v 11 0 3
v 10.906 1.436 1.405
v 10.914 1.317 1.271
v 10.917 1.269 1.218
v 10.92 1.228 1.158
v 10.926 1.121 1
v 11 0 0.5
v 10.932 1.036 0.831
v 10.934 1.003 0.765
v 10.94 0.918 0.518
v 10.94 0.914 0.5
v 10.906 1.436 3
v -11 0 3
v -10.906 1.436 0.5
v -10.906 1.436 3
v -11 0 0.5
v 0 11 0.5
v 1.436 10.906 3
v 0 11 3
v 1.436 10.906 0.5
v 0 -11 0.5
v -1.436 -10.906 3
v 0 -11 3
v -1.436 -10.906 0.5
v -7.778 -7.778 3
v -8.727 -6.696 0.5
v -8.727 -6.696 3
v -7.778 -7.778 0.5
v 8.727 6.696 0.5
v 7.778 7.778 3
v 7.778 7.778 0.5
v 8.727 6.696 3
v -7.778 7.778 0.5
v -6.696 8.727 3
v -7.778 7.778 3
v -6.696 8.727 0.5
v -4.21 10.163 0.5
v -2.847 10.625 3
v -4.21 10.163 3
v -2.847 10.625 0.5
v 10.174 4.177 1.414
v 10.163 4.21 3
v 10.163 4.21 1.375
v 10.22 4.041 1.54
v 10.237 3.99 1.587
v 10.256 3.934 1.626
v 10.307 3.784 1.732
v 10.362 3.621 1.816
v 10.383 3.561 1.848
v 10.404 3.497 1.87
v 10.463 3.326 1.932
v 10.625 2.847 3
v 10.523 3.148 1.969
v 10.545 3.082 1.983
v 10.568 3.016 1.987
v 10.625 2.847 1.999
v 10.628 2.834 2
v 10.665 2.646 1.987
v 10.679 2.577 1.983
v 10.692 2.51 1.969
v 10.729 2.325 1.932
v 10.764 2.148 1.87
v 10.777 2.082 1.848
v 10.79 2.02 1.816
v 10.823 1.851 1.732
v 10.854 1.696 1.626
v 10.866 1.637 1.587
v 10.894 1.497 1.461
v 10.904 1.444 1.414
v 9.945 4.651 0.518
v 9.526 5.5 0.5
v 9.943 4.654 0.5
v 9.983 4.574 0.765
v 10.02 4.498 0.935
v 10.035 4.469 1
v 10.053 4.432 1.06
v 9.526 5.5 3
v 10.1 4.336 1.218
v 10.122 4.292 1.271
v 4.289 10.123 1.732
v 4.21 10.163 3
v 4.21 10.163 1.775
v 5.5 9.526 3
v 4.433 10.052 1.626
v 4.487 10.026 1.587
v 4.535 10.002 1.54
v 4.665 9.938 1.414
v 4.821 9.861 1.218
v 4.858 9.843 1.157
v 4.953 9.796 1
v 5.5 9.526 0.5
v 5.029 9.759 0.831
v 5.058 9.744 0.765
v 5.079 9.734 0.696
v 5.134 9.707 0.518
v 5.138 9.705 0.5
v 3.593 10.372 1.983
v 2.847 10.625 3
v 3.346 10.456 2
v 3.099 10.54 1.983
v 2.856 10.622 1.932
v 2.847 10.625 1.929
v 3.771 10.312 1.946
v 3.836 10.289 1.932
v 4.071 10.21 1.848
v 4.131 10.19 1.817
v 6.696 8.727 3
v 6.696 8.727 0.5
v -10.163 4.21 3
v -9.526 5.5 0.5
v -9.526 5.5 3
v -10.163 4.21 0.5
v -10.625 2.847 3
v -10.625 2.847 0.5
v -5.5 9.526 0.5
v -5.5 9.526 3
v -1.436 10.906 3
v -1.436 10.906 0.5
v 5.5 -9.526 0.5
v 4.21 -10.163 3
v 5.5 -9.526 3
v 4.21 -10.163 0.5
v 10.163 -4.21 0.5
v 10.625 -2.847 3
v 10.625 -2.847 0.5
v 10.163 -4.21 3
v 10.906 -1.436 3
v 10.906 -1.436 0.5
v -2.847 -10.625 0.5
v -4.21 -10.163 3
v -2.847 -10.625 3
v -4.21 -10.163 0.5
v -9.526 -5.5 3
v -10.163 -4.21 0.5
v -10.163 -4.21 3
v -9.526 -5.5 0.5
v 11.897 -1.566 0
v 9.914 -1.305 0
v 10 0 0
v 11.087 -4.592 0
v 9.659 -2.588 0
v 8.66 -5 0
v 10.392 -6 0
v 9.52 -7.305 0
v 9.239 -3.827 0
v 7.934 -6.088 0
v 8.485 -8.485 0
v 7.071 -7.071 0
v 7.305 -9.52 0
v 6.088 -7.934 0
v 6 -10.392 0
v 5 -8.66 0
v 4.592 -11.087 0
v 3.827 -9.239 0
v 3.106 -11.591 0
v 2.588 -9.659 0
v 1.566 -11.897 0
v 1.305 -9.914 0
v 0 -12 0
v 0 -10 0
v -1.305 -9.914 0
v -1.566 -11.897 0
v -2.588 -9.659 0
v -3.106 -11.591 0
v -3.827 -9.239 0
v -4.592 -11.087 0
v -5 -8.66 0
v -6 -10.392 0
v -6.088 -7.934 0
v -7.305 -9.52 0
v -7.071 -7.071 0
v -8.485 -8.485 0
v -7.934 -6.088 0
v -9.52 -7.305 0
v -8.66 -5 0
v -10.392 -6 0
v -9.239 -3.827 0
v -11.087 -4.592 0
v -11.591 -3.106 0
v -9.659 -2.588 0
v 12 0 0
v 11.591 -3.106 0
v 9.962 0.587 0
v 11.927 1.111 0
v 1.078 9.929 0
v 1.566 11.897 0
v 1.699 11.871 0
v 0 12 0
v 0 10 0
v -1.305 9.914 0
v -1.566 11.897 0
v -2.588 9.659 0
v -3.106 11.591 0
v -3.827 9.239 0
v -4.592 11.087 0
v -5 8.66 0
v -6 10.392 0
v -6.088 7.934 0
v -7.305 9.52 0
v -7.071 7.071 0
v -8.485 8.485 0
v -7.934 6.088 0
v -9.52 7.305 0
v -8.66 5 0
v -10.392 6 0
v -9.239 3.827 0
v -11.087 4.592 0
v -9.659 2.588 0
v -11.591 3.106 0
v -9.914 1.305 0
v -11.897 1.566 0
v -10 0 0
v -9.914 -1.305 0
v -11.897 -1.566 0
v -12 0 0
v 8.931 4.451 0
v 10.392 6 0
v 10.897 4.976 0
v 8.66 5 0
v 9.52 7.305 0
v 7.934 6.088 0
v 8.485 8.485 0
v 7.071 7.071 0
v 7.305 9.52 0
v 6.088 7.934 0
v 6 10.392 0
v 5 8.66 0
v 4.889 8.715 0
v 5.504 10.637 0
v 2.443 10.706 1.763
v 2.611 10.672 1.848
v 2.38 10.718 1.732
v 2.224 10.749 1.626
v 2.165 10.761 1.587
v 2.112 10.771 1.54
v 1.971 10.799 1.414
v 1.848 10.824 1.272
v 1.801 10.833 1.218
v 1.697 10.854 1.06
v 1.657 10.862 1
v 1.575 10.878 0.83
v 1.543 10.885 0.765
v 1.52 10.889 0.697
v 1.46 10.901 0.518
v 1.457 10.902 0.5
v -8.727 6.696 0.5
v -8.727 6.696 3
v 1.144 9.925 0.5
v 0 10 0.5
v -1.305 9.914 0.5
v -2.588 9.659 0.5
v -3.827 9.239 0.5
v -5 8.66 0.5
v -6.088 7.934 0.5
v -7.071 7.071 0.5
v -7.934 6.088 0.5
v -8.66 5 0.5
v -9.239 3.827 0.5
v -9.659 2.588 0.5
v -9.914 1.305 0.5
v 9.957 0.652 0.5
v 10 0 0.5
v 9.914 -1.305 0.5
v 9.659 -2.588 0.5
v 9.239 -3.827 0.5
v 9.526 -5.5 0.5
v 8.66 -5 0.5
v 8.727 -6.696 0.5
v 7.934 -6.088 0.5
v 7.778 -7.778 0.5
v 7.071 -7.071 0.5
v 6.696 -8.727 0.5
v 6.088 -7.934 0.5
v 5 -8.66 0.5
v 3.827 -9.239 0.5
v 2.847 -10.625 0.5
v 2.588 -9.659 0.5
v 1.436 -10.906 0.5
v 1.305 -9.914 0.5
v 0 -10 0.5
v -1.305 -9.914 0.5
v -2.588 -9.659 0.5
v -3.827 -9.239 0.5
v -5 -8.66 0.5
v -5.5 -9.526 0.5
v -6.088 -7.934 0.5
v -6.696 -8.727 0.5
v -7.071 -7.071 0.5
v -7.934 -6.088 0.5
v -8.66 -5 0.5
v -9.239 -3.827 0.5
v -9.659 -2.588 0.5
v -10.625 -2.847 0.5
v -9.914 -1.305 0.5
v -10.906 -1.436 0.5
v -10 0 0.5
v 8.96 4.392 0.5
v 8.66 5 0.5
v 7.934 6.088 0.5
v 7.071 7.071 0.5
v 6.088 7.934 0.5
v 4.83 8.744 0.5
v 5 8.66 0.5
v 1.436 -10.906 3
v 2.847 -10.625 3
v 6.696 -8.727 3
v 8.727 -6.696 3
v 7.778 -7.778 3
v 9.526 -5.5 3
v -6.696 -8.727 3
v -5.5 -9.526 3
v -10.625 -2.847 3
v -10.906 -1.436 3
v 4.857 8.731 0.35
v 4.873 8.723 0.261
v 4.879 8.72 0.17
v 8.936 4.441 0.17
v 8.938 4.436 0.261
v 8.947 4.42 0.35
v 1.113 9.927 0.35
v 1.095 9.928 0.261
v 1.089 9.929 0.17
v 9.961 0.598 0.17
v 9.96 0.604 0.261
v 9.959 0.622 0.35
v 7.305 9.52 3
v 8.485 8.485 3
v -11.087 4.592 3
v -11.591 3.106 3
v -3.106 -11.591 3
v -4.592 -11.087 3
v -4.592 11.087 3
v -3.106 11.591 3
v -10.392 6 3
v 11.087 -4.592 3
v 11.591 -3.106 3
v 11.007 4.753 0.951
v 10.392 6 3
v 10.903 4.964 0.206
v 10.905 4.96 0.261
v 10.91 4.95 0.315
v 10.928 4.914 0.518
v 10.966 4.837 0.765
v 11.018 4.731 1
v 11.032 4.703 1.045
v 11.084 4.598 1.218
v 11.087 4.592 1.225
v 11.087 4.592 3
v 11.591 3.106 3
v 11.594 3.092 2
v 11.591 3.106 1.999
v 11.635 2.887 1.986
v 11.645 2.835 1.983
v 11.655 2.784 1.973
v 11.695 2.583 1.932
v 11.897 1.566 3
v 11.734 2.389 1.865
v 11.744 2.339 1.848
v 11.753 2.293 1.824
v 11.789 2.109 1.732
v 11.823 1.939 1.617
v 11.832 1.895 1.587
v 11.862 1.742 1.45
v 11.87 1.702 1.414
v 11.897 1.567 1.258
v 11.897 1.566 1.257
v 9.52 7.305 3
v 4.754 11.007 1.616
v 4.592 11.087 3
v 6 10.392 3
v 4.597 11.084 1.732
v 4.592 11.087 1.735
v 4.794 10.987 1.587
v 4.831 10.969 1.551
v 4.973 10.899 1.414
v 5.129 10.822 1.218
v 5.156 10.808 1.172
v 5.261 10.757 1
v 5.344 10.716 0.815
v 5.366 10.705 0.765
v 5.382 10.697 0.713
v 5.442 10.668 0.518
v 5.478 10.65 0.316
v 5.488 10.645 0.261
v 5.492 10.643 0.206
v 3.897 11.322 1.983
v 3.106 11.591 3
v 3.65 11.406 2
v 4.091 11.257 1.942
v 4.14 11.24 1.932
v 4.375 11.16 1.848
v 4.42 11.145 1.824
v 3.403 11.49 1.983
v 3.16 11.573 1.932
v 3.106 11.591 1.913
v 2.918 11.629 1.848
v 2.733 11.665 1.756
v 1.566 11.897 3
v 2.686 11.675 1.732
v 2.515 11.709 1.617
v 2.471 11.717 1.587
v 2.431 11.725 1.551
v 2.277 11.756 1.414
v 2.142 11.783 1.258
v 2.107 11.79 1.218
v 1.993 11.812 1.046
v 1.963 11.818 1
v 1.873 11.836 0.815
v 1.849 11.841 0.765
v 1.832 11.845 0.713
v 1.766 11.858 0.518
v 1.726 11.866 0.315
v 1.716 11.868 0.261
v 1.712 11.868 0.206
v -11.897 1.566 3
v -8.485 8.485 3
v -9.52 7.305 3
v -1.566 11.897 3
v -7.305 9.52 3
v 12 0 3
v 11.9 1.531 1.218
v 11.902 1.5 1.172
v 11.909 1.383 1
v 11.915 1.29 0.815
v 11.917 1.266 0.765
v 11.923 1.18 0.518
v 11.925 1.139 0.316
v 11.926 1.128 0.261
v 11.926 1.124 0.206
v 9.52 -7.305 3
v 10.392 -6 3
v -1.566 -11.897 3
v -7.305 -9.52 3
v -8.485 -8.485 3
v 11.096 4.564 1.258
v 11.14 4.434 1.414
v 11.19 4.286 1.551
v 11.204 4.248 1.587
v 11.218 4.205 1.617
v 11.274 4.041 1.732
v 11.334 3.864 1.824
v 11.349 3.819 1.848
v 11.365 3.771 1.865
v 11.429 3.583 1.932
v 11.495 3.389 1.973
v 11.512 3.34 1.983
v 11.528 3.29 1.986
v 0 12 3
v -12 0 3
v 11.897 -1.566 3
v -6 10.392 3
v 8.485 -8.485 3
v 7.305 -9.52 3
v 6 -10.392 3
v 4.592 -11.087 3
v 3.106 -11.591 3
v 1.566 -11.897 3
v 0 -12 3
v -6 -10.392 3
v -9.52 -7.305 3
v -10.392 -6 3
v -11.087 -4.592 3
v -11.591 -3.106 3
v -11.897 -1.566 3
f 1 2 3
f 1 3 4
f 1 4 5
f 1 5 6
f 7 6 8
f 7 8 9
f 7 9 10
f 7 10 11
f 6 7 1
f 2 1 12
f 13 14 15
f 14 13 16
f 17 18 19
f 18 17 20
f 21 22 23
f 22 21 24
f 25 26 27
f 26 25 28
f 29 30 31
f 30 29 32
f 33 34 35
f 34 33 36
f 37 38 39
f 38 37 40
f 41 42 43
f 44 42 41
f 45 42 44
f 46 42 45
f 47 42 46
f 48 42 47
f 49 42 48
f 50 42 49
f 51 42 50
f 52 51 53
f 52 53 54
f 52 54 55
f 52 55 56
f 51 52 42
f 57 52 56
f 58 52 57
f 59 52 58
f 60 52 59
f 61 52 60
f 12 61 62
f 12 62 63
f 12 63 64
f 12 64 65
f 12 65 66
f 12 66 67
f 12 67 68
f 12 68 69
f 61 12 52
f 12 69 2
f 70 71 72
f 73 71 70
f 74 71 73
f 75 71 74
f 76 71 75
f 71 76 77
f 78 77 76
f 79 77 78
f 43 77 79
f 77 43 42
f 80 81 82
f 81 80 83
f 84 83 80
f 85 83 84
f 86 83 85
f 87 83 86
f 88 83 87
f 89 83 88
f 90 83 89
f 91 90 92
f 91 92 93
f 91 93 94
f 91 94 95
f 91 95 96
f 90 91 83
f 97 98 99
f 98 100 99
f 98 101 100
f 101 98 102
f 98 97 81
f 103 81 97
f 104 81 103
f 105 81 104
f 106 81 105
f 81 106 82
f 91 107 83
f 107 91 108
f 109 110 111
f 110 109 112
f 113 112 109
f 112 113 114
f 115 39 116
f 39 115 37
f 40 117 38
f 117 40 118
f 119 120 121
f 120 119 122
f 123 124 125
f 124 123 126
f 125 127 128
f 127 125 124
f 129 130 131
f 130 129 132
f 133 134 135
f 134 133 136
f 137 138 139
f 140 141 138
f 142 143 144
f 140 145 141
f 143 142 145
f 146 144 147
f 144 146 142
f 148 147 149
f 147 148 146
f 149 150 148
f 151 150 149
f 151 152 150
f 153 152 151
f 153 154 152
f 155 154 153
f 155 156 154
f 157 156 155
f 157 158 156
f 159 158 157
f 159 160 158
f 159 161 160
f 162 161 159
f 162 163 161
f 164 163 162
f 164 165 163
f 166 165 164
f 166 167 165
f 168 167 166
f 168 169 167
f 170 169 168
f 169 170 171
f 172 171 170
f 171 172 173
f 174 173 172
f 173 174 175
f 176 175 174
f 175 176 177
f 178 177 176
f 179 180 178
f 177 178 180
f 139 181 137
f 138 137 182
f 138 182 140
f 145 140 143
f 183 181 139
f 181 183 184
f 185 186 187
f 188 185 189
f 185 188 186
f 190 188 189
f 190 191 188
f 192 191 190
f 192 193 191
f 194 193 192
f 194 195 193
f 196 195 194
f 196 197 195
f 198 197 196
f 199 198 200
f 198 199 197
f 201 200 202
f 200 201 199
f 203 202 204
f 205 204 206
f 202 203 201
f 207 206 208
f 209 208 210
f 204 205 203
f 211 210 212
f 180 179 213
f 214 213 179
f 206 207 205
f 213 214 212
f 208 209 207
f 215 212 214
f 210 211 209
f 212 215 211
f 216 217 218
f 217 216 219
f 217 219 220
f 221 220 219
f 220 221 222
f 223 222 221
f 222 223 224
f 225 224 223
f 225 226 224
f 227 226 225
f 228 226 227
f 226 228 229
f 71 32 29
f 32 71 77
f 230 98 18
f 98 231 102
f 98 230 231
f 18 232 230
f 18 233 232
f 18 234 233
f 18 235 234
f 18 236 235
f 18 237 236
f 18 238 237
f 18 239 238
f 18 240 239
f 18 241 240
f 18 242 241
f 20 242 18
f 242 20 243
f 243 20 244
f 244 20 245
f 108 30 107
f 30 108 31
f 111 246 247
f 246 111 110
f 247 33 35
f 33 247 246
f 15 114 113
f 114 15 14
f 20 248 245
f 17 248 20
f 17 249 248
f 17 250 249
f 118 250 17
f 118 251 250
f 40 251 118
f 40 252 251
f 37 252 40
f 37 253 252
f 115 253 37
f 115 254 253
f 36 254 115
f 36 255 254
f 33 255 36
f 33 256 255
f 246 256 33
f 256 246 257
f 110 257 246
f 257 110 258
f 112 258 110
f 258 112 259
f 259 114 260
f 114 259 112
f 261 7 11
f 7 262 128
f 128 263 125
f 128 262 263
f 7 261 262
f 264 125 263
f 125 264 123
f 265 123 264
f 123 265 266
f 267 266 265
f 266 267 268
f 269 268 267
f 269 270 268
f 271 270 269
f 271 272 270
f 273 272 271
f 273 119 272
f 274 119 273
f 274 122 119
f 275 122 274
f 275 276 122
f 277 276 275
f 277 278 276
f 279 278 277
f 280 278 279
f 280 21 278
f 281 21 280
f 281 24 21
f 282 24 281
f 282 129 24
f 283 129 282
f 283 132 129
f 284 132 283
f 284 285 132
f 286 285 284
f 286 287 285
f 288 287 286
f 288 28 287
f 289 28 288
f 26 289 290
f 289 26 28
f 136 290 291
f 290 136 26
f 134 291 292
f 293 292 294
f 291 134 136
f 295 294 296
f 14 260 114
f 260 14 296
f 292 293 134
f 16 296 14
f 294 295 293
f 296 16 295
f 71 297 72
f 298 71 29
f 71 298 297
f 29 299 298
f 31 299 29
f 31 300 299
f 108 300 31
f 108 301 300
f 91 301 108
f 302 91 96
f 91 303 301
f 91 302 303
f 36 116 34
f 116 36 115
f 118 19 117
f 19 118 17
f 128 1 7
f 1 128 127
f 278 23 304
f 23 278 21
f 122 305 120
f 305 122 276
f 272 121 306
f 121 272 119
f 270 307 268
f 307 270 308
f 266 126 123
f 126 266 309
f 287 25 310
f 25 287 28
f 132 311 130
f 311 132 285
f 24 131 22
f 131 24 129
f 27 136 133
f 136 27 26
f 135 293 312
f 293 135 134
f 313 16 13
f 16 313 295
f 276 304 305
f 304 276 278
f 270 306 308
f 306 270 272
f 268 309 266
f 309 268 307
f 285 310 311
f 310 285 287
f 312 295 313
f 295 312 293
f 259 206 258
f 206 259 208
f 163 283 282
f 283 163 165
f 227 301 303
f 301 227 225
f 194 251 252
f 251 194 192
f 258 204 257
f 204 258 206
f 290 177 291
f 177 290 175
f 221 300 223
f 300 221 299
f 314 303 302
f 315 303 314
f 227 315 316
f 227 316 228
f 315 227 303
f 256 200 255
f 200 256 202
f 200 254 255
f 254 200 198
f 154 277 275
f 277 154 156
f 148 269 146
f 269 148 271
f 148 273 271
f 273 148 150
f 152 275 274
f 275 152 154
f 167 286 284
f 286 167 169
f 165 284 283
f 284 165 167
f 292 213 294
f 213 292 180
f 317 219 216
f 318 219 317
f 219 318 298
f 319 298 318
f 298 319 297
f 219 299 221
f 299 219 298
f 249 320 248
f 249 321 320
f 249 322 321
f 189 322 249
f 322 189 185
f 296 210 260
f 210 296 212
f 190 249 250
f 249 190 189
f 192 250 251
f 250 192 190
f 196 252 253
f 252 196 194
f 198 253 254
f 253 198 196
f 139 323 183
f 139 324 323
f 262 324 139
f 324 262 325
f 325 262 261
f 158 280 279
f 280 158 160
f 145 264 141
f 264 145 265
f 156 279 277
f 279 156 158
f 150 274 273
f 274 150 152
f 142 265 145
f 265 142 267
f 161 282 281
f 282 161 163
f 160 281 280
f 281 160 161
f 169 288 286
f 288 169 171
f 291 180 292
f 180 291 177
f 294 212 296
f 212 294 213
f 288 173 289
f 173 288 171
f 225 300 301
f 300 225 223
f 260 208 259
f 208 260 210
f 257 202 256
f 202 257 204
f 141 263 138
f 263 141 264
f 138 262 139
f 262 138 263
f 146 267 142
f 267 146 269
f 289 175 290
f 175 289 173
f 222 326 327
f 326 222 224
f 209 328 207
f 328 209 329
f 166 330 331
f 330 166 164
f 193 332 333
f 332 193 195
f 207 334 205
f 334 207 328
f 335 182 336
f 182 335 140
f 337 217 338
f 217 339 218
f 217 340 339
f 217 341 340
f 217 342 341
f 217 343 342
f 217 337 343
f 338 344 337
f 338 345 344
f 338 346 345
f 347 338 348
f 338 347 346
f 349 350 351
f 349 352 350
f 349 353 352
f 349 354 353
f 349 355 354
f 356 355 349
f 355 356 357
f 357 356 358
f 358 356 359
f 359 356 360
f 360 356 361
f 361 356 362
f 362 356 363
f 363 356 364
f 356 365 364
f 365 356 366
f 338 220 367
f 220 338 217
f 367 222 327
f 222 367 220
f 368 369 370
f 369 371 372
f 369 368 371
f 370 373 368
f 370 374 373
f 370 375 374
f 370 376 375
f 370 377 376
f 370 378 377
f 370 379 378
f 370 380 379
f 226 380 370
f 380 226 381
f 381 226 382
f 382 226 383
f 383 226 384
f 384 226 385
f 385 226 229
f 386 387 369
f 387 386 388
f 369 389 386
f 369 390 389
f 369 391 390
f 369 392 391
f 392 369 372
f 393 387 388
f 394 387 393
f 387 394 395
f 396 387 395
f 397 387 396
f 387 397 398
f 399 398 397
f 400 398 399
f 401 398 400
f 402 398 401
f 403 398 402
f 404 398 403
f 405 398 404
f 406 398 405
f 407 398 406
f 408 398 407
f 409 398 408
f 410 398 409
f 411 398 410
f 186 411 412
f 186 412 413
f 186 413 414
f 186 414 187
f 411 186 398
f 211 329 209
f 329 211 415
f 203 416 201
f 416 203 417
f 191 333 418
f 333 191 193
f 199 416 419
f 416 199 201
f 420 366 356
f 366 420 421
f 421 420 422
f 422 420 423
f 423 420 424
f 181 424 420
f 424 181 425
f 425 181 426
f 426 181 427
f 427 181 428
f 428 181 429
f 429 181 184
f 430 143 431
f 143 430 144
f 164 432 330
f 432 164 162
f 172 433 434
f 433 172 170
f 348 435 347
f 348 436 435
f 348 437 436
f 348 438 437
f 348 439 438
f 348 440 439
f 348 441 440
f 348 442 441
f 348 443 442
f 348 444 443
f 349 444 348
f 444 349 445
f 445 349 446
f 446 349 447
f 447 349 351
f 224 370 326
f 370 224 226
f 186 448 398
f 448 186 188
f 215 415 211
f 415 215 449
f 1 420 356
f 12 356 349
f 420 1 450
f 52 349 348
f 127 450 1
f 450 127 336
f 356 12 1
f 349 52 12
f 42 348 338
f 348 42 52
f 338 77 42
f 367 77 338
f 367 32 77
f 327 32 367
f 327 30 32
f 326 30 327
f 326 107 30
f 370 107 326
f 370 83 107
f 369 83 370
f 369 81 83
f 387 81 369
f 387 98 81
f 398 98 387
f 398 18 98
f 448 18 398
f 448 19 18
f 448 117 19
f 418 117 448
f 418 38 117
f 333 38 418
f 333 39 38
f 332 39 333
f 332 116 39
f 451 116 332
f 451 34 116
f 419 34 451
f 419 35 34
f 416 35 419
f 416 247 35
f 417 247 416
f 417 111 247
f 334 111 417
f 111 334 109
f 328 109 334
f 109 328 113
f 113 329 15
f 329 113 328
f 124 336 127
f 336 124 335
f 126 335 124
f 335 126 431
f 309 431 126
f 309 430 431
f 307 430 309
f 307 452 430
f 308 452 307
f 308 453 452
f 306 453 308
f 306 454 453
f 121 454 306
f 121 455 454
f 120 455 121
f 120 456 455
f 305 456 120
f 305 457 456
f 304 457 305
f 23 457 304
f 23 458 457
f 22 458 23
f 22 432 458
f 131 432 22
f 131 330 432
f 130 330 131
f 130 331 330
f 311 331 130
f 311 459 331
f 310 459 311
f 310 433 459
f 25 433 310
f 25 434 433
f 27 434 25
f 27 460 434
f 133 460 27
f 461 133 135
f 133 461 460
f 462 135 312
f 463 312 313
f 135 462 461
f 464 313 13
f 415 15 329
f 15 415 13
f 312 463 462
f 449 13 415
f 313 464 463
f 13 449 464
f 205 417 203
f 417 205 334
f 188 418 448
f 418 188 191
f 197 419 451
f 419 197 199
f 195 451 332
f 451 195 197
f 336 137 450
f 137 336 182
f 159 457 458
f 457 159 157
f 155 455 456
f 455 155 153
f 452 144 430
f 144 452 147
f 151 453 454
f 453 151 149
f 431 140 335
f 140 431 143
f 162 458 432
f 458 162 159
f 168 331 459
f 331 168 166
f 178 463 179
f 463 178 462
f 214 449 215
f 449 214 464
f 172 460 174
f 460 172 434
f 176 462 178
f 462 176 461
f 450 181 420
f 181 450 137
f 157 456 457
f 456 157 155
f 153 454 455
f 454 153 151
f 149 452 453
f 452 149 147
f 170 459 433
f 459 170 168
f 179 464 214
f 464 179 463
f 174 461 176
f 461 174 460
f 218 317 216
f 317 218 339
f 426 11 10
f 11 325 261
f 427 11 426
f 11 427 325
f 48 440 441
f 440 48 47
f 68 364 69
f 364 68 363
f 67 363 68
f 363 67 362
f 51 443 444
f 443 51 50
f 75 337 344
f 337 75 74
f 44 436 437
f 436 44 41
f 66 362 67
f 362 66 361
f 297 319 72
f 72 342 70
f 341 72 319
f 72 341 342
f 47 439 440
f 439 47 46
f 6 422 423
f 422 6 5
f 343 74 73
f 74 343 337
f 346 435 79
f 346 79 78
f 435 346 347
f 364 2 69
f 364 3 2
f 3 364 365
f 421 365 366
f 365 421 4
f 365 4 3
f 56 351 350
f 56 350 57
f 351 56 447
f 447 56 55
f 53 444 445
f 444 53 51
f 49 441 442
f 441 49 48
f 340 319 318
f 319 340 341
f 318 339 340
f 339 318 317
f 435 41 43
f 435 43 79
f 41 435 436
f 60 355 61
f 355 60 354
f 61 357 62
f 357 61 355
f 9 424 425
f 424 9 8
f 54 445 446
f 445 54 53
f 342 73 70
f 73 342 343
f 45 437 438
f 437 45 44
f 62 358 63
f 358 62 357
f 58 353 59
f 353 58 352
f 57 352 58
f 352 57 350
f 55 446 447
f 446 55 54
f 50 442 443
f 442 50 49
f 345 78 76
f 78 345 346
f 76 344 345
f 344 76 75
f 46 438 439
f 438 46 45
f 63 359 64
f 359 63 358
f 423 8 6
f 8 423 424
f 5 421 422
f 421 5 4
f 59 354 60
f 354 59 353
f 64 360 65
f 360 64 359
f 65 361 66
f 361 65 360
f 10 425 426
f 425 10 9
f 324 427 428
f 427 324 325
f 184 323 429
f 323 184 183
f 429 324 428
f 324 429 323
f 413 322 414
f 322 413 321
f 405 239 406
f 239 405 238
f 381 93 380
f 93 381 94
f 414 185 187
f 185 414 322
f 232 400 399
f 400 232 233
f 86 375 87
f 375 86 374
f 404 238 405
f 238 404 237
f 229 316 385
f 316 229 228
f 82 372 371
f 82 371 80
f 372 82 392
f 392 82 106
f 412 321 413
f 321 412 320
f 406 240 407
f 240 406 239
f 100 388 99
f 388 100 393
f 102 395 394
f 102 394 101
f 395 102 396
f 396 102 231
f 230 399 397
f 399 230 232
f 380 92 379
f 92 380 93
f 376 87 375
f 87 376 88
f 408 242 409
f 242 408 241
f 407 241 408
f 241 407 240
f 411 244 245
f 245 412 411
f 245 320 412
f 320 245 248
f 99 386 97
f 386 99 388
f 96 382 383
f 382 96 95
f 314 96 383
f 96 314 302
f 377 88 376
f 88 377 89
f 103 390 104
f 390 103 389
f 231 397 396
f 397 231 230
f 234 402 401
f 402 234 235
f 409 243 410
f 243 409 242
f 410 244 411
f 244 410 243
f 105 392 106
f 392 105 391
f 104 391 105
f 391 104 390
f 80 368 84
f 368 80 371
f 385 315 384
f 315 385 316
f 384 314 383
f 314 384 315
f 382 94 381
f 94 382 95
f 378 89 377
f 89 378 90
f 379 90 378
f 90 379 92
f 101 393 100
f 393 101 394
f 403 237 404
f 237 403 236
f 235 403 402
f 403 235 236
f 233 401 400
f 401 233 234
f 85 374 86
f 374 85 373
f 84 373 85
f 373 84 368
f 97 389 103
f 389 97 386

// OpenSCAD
// file: ../build_environments.scad
// build_environments.scad: modules to build level sections
//

module pool(diameter=10.0, wall_height=2.0, step_width=3.0, connections=[])
{
    difference() {
        union() {
        difference() {
            cylinder(h=0.5,r1=diameter+step_width,r2=diameter+step_width,$fn=48);
            translate([0,0,-0.1])
                cylinder(h=0.7,r1=diameter,r2=diameter,$fn=48);
        }
        difference() {
            cylinder(h=wall_height,r1=diameter+step_width+1.0,r2=diameter+step_width+1.0,$fn=48);
            translate([0,0,-0.1])
                cylinder(h=wall_height+0.2,r1=diameter+step_width,r2=diameter+step_width,$fn=48);
        }
        }
    
        for (c = connections)
        {
            rotate([0,90,0]) {
                angle = atan2(c[1],c[0]);
                rotate([-angle,0,0]) {
                    cylinder(h=diameter+5.0,r1=c[2],r2=c[2],$fn=48);
                }
            }
        }
    }
}

module straight(length=10.0, width=2.0, dy1=0.0, dy2=0.0, dz=0.0)
{
    dims = [0, 0, 0, 0, 0, (dz/length)];
    matrix = [
        [ 1, dims[0], dims[1], 0 ],
        [ dims[2], 1, dims[4], 0 ],
        [ dims[5], dims[3], 1, 0 ],
        [ 0, 0, 0, 1 ]
    ];
    multmatrix(matrix)
    difference() {
        translate([dy1,0,0])
        union() {
            rotate([0,90,0]) {
                difference() {
                    cylinder(h=(length-dy1-dy2),r1=width+1.0,r2=width+1.0,$fn=24);
                    translate([0,0,-0.1])
                        cylinder(h=(length-dy1-dy2+0.2),r1=width,r2=width,$fn=24);
                }
                difference() {
                    cylinder(h=1.0,r1=width+2.0,r2=width+2.0,$fn=24);
                    translate([0,0,-0.1])
                        cylinder(h=1.2,r1=width,r2=width,$fn=24);
                }
                translate([0,0,(length-dy1-dy2)-1.0]) {
                    difference() {
                        cylinder(h=1.0,r1=width+2.0,r2=width+2.0,$fn=24);
                        translate([0,0,-0.1])
                            cylinder(h=1.2,r1=width,r2=width,$fn=24);
                    }
                }
            }
        }
        translate([0,0,-(2*width+4.0)/2])
            cube([3*length,3*length,2*width+4.0],center=true);
    }
}

module curve(p0=[0,0], center=[0,0], dir=1, angle=0.0, width=2.0)
{
    radius = sqrt((p0[0]-center[0])*(p0[0]-center[0]) + (p0[1]-center[1])*(p0[1]-center[1]));
    if (dir == 0) {
        difference() {
            rotate([0,0,-90])
            difference() {
                rotate_extrude(angle = angle, convexity = 10, $fn=32)
                    translate([radius, 0, 0])
                        circle(r = width+1.0,$fn=24);
                rotate([0,0,-1.0])
                    rotate_extrude(angle = angle+2.0, convexity = 10, $fn=32)
                        translate([radius, 0, 0])
                            circle(r = width,$fn=24);
            }
            translate([0,0,-(2*width+4.0)/2])
                cube([5*radius,5*radius,2*width+4.0],center=true);
        }
    }
    else {
        difference() {
            rotate([0,0,90])
            difference() {
                rotate_extrude(angle = -angle, convexity = 10, $fn=32)
                    translate([radius, 0, 0])
                        circle(r = width+1.0,$fn=24);
                rotate([0,0,1.0])
                    rotate_extrude(angle = -angle-2.0, convexity = 10, $fn=32)
                        translate([radius, 0, 0])
                            circle(r = width,$fn=24);
            }
            translate([0,0,-(2*width+4.0)/2])
                cube([5*radius,5*radius,2*width+4.0],center=true);
        }
    }

}

// test pool
//pool(diameter=12.0000, wall_height=3.0000, step_width=3.0000, connections=[[0.0000,-26.0000,2.0000], [23.6074,0.0000,2.0000]]);

// test straight, slope
//straight(length=26.0000, width=2.0000, dy1=11.8322, dy2=6.7082, dz=0.0000);
//straight(length=29.1549, width=12.0000, dy1=0.0000, dy2=0.0000, dz=-15.0000);

// test curve
//curve(p0=[23.6074, 0.0000], center=[23.6074, 5.0000], dir=0, angle=60.1011, width=2.0000);
//curve(p0=[33.6426, 12.4219], center=[37.9771, 9.9295], dir=1, angle=120.4627, width=2.0000);
// main file
use <../build_environments.scad>;
pool(diameter=10.0000, wall_height=3.0000, step_width=1.0000, connections=[[14.1466,3.7724,2.0000], [16.0000,50.0000,2.0000]]);
